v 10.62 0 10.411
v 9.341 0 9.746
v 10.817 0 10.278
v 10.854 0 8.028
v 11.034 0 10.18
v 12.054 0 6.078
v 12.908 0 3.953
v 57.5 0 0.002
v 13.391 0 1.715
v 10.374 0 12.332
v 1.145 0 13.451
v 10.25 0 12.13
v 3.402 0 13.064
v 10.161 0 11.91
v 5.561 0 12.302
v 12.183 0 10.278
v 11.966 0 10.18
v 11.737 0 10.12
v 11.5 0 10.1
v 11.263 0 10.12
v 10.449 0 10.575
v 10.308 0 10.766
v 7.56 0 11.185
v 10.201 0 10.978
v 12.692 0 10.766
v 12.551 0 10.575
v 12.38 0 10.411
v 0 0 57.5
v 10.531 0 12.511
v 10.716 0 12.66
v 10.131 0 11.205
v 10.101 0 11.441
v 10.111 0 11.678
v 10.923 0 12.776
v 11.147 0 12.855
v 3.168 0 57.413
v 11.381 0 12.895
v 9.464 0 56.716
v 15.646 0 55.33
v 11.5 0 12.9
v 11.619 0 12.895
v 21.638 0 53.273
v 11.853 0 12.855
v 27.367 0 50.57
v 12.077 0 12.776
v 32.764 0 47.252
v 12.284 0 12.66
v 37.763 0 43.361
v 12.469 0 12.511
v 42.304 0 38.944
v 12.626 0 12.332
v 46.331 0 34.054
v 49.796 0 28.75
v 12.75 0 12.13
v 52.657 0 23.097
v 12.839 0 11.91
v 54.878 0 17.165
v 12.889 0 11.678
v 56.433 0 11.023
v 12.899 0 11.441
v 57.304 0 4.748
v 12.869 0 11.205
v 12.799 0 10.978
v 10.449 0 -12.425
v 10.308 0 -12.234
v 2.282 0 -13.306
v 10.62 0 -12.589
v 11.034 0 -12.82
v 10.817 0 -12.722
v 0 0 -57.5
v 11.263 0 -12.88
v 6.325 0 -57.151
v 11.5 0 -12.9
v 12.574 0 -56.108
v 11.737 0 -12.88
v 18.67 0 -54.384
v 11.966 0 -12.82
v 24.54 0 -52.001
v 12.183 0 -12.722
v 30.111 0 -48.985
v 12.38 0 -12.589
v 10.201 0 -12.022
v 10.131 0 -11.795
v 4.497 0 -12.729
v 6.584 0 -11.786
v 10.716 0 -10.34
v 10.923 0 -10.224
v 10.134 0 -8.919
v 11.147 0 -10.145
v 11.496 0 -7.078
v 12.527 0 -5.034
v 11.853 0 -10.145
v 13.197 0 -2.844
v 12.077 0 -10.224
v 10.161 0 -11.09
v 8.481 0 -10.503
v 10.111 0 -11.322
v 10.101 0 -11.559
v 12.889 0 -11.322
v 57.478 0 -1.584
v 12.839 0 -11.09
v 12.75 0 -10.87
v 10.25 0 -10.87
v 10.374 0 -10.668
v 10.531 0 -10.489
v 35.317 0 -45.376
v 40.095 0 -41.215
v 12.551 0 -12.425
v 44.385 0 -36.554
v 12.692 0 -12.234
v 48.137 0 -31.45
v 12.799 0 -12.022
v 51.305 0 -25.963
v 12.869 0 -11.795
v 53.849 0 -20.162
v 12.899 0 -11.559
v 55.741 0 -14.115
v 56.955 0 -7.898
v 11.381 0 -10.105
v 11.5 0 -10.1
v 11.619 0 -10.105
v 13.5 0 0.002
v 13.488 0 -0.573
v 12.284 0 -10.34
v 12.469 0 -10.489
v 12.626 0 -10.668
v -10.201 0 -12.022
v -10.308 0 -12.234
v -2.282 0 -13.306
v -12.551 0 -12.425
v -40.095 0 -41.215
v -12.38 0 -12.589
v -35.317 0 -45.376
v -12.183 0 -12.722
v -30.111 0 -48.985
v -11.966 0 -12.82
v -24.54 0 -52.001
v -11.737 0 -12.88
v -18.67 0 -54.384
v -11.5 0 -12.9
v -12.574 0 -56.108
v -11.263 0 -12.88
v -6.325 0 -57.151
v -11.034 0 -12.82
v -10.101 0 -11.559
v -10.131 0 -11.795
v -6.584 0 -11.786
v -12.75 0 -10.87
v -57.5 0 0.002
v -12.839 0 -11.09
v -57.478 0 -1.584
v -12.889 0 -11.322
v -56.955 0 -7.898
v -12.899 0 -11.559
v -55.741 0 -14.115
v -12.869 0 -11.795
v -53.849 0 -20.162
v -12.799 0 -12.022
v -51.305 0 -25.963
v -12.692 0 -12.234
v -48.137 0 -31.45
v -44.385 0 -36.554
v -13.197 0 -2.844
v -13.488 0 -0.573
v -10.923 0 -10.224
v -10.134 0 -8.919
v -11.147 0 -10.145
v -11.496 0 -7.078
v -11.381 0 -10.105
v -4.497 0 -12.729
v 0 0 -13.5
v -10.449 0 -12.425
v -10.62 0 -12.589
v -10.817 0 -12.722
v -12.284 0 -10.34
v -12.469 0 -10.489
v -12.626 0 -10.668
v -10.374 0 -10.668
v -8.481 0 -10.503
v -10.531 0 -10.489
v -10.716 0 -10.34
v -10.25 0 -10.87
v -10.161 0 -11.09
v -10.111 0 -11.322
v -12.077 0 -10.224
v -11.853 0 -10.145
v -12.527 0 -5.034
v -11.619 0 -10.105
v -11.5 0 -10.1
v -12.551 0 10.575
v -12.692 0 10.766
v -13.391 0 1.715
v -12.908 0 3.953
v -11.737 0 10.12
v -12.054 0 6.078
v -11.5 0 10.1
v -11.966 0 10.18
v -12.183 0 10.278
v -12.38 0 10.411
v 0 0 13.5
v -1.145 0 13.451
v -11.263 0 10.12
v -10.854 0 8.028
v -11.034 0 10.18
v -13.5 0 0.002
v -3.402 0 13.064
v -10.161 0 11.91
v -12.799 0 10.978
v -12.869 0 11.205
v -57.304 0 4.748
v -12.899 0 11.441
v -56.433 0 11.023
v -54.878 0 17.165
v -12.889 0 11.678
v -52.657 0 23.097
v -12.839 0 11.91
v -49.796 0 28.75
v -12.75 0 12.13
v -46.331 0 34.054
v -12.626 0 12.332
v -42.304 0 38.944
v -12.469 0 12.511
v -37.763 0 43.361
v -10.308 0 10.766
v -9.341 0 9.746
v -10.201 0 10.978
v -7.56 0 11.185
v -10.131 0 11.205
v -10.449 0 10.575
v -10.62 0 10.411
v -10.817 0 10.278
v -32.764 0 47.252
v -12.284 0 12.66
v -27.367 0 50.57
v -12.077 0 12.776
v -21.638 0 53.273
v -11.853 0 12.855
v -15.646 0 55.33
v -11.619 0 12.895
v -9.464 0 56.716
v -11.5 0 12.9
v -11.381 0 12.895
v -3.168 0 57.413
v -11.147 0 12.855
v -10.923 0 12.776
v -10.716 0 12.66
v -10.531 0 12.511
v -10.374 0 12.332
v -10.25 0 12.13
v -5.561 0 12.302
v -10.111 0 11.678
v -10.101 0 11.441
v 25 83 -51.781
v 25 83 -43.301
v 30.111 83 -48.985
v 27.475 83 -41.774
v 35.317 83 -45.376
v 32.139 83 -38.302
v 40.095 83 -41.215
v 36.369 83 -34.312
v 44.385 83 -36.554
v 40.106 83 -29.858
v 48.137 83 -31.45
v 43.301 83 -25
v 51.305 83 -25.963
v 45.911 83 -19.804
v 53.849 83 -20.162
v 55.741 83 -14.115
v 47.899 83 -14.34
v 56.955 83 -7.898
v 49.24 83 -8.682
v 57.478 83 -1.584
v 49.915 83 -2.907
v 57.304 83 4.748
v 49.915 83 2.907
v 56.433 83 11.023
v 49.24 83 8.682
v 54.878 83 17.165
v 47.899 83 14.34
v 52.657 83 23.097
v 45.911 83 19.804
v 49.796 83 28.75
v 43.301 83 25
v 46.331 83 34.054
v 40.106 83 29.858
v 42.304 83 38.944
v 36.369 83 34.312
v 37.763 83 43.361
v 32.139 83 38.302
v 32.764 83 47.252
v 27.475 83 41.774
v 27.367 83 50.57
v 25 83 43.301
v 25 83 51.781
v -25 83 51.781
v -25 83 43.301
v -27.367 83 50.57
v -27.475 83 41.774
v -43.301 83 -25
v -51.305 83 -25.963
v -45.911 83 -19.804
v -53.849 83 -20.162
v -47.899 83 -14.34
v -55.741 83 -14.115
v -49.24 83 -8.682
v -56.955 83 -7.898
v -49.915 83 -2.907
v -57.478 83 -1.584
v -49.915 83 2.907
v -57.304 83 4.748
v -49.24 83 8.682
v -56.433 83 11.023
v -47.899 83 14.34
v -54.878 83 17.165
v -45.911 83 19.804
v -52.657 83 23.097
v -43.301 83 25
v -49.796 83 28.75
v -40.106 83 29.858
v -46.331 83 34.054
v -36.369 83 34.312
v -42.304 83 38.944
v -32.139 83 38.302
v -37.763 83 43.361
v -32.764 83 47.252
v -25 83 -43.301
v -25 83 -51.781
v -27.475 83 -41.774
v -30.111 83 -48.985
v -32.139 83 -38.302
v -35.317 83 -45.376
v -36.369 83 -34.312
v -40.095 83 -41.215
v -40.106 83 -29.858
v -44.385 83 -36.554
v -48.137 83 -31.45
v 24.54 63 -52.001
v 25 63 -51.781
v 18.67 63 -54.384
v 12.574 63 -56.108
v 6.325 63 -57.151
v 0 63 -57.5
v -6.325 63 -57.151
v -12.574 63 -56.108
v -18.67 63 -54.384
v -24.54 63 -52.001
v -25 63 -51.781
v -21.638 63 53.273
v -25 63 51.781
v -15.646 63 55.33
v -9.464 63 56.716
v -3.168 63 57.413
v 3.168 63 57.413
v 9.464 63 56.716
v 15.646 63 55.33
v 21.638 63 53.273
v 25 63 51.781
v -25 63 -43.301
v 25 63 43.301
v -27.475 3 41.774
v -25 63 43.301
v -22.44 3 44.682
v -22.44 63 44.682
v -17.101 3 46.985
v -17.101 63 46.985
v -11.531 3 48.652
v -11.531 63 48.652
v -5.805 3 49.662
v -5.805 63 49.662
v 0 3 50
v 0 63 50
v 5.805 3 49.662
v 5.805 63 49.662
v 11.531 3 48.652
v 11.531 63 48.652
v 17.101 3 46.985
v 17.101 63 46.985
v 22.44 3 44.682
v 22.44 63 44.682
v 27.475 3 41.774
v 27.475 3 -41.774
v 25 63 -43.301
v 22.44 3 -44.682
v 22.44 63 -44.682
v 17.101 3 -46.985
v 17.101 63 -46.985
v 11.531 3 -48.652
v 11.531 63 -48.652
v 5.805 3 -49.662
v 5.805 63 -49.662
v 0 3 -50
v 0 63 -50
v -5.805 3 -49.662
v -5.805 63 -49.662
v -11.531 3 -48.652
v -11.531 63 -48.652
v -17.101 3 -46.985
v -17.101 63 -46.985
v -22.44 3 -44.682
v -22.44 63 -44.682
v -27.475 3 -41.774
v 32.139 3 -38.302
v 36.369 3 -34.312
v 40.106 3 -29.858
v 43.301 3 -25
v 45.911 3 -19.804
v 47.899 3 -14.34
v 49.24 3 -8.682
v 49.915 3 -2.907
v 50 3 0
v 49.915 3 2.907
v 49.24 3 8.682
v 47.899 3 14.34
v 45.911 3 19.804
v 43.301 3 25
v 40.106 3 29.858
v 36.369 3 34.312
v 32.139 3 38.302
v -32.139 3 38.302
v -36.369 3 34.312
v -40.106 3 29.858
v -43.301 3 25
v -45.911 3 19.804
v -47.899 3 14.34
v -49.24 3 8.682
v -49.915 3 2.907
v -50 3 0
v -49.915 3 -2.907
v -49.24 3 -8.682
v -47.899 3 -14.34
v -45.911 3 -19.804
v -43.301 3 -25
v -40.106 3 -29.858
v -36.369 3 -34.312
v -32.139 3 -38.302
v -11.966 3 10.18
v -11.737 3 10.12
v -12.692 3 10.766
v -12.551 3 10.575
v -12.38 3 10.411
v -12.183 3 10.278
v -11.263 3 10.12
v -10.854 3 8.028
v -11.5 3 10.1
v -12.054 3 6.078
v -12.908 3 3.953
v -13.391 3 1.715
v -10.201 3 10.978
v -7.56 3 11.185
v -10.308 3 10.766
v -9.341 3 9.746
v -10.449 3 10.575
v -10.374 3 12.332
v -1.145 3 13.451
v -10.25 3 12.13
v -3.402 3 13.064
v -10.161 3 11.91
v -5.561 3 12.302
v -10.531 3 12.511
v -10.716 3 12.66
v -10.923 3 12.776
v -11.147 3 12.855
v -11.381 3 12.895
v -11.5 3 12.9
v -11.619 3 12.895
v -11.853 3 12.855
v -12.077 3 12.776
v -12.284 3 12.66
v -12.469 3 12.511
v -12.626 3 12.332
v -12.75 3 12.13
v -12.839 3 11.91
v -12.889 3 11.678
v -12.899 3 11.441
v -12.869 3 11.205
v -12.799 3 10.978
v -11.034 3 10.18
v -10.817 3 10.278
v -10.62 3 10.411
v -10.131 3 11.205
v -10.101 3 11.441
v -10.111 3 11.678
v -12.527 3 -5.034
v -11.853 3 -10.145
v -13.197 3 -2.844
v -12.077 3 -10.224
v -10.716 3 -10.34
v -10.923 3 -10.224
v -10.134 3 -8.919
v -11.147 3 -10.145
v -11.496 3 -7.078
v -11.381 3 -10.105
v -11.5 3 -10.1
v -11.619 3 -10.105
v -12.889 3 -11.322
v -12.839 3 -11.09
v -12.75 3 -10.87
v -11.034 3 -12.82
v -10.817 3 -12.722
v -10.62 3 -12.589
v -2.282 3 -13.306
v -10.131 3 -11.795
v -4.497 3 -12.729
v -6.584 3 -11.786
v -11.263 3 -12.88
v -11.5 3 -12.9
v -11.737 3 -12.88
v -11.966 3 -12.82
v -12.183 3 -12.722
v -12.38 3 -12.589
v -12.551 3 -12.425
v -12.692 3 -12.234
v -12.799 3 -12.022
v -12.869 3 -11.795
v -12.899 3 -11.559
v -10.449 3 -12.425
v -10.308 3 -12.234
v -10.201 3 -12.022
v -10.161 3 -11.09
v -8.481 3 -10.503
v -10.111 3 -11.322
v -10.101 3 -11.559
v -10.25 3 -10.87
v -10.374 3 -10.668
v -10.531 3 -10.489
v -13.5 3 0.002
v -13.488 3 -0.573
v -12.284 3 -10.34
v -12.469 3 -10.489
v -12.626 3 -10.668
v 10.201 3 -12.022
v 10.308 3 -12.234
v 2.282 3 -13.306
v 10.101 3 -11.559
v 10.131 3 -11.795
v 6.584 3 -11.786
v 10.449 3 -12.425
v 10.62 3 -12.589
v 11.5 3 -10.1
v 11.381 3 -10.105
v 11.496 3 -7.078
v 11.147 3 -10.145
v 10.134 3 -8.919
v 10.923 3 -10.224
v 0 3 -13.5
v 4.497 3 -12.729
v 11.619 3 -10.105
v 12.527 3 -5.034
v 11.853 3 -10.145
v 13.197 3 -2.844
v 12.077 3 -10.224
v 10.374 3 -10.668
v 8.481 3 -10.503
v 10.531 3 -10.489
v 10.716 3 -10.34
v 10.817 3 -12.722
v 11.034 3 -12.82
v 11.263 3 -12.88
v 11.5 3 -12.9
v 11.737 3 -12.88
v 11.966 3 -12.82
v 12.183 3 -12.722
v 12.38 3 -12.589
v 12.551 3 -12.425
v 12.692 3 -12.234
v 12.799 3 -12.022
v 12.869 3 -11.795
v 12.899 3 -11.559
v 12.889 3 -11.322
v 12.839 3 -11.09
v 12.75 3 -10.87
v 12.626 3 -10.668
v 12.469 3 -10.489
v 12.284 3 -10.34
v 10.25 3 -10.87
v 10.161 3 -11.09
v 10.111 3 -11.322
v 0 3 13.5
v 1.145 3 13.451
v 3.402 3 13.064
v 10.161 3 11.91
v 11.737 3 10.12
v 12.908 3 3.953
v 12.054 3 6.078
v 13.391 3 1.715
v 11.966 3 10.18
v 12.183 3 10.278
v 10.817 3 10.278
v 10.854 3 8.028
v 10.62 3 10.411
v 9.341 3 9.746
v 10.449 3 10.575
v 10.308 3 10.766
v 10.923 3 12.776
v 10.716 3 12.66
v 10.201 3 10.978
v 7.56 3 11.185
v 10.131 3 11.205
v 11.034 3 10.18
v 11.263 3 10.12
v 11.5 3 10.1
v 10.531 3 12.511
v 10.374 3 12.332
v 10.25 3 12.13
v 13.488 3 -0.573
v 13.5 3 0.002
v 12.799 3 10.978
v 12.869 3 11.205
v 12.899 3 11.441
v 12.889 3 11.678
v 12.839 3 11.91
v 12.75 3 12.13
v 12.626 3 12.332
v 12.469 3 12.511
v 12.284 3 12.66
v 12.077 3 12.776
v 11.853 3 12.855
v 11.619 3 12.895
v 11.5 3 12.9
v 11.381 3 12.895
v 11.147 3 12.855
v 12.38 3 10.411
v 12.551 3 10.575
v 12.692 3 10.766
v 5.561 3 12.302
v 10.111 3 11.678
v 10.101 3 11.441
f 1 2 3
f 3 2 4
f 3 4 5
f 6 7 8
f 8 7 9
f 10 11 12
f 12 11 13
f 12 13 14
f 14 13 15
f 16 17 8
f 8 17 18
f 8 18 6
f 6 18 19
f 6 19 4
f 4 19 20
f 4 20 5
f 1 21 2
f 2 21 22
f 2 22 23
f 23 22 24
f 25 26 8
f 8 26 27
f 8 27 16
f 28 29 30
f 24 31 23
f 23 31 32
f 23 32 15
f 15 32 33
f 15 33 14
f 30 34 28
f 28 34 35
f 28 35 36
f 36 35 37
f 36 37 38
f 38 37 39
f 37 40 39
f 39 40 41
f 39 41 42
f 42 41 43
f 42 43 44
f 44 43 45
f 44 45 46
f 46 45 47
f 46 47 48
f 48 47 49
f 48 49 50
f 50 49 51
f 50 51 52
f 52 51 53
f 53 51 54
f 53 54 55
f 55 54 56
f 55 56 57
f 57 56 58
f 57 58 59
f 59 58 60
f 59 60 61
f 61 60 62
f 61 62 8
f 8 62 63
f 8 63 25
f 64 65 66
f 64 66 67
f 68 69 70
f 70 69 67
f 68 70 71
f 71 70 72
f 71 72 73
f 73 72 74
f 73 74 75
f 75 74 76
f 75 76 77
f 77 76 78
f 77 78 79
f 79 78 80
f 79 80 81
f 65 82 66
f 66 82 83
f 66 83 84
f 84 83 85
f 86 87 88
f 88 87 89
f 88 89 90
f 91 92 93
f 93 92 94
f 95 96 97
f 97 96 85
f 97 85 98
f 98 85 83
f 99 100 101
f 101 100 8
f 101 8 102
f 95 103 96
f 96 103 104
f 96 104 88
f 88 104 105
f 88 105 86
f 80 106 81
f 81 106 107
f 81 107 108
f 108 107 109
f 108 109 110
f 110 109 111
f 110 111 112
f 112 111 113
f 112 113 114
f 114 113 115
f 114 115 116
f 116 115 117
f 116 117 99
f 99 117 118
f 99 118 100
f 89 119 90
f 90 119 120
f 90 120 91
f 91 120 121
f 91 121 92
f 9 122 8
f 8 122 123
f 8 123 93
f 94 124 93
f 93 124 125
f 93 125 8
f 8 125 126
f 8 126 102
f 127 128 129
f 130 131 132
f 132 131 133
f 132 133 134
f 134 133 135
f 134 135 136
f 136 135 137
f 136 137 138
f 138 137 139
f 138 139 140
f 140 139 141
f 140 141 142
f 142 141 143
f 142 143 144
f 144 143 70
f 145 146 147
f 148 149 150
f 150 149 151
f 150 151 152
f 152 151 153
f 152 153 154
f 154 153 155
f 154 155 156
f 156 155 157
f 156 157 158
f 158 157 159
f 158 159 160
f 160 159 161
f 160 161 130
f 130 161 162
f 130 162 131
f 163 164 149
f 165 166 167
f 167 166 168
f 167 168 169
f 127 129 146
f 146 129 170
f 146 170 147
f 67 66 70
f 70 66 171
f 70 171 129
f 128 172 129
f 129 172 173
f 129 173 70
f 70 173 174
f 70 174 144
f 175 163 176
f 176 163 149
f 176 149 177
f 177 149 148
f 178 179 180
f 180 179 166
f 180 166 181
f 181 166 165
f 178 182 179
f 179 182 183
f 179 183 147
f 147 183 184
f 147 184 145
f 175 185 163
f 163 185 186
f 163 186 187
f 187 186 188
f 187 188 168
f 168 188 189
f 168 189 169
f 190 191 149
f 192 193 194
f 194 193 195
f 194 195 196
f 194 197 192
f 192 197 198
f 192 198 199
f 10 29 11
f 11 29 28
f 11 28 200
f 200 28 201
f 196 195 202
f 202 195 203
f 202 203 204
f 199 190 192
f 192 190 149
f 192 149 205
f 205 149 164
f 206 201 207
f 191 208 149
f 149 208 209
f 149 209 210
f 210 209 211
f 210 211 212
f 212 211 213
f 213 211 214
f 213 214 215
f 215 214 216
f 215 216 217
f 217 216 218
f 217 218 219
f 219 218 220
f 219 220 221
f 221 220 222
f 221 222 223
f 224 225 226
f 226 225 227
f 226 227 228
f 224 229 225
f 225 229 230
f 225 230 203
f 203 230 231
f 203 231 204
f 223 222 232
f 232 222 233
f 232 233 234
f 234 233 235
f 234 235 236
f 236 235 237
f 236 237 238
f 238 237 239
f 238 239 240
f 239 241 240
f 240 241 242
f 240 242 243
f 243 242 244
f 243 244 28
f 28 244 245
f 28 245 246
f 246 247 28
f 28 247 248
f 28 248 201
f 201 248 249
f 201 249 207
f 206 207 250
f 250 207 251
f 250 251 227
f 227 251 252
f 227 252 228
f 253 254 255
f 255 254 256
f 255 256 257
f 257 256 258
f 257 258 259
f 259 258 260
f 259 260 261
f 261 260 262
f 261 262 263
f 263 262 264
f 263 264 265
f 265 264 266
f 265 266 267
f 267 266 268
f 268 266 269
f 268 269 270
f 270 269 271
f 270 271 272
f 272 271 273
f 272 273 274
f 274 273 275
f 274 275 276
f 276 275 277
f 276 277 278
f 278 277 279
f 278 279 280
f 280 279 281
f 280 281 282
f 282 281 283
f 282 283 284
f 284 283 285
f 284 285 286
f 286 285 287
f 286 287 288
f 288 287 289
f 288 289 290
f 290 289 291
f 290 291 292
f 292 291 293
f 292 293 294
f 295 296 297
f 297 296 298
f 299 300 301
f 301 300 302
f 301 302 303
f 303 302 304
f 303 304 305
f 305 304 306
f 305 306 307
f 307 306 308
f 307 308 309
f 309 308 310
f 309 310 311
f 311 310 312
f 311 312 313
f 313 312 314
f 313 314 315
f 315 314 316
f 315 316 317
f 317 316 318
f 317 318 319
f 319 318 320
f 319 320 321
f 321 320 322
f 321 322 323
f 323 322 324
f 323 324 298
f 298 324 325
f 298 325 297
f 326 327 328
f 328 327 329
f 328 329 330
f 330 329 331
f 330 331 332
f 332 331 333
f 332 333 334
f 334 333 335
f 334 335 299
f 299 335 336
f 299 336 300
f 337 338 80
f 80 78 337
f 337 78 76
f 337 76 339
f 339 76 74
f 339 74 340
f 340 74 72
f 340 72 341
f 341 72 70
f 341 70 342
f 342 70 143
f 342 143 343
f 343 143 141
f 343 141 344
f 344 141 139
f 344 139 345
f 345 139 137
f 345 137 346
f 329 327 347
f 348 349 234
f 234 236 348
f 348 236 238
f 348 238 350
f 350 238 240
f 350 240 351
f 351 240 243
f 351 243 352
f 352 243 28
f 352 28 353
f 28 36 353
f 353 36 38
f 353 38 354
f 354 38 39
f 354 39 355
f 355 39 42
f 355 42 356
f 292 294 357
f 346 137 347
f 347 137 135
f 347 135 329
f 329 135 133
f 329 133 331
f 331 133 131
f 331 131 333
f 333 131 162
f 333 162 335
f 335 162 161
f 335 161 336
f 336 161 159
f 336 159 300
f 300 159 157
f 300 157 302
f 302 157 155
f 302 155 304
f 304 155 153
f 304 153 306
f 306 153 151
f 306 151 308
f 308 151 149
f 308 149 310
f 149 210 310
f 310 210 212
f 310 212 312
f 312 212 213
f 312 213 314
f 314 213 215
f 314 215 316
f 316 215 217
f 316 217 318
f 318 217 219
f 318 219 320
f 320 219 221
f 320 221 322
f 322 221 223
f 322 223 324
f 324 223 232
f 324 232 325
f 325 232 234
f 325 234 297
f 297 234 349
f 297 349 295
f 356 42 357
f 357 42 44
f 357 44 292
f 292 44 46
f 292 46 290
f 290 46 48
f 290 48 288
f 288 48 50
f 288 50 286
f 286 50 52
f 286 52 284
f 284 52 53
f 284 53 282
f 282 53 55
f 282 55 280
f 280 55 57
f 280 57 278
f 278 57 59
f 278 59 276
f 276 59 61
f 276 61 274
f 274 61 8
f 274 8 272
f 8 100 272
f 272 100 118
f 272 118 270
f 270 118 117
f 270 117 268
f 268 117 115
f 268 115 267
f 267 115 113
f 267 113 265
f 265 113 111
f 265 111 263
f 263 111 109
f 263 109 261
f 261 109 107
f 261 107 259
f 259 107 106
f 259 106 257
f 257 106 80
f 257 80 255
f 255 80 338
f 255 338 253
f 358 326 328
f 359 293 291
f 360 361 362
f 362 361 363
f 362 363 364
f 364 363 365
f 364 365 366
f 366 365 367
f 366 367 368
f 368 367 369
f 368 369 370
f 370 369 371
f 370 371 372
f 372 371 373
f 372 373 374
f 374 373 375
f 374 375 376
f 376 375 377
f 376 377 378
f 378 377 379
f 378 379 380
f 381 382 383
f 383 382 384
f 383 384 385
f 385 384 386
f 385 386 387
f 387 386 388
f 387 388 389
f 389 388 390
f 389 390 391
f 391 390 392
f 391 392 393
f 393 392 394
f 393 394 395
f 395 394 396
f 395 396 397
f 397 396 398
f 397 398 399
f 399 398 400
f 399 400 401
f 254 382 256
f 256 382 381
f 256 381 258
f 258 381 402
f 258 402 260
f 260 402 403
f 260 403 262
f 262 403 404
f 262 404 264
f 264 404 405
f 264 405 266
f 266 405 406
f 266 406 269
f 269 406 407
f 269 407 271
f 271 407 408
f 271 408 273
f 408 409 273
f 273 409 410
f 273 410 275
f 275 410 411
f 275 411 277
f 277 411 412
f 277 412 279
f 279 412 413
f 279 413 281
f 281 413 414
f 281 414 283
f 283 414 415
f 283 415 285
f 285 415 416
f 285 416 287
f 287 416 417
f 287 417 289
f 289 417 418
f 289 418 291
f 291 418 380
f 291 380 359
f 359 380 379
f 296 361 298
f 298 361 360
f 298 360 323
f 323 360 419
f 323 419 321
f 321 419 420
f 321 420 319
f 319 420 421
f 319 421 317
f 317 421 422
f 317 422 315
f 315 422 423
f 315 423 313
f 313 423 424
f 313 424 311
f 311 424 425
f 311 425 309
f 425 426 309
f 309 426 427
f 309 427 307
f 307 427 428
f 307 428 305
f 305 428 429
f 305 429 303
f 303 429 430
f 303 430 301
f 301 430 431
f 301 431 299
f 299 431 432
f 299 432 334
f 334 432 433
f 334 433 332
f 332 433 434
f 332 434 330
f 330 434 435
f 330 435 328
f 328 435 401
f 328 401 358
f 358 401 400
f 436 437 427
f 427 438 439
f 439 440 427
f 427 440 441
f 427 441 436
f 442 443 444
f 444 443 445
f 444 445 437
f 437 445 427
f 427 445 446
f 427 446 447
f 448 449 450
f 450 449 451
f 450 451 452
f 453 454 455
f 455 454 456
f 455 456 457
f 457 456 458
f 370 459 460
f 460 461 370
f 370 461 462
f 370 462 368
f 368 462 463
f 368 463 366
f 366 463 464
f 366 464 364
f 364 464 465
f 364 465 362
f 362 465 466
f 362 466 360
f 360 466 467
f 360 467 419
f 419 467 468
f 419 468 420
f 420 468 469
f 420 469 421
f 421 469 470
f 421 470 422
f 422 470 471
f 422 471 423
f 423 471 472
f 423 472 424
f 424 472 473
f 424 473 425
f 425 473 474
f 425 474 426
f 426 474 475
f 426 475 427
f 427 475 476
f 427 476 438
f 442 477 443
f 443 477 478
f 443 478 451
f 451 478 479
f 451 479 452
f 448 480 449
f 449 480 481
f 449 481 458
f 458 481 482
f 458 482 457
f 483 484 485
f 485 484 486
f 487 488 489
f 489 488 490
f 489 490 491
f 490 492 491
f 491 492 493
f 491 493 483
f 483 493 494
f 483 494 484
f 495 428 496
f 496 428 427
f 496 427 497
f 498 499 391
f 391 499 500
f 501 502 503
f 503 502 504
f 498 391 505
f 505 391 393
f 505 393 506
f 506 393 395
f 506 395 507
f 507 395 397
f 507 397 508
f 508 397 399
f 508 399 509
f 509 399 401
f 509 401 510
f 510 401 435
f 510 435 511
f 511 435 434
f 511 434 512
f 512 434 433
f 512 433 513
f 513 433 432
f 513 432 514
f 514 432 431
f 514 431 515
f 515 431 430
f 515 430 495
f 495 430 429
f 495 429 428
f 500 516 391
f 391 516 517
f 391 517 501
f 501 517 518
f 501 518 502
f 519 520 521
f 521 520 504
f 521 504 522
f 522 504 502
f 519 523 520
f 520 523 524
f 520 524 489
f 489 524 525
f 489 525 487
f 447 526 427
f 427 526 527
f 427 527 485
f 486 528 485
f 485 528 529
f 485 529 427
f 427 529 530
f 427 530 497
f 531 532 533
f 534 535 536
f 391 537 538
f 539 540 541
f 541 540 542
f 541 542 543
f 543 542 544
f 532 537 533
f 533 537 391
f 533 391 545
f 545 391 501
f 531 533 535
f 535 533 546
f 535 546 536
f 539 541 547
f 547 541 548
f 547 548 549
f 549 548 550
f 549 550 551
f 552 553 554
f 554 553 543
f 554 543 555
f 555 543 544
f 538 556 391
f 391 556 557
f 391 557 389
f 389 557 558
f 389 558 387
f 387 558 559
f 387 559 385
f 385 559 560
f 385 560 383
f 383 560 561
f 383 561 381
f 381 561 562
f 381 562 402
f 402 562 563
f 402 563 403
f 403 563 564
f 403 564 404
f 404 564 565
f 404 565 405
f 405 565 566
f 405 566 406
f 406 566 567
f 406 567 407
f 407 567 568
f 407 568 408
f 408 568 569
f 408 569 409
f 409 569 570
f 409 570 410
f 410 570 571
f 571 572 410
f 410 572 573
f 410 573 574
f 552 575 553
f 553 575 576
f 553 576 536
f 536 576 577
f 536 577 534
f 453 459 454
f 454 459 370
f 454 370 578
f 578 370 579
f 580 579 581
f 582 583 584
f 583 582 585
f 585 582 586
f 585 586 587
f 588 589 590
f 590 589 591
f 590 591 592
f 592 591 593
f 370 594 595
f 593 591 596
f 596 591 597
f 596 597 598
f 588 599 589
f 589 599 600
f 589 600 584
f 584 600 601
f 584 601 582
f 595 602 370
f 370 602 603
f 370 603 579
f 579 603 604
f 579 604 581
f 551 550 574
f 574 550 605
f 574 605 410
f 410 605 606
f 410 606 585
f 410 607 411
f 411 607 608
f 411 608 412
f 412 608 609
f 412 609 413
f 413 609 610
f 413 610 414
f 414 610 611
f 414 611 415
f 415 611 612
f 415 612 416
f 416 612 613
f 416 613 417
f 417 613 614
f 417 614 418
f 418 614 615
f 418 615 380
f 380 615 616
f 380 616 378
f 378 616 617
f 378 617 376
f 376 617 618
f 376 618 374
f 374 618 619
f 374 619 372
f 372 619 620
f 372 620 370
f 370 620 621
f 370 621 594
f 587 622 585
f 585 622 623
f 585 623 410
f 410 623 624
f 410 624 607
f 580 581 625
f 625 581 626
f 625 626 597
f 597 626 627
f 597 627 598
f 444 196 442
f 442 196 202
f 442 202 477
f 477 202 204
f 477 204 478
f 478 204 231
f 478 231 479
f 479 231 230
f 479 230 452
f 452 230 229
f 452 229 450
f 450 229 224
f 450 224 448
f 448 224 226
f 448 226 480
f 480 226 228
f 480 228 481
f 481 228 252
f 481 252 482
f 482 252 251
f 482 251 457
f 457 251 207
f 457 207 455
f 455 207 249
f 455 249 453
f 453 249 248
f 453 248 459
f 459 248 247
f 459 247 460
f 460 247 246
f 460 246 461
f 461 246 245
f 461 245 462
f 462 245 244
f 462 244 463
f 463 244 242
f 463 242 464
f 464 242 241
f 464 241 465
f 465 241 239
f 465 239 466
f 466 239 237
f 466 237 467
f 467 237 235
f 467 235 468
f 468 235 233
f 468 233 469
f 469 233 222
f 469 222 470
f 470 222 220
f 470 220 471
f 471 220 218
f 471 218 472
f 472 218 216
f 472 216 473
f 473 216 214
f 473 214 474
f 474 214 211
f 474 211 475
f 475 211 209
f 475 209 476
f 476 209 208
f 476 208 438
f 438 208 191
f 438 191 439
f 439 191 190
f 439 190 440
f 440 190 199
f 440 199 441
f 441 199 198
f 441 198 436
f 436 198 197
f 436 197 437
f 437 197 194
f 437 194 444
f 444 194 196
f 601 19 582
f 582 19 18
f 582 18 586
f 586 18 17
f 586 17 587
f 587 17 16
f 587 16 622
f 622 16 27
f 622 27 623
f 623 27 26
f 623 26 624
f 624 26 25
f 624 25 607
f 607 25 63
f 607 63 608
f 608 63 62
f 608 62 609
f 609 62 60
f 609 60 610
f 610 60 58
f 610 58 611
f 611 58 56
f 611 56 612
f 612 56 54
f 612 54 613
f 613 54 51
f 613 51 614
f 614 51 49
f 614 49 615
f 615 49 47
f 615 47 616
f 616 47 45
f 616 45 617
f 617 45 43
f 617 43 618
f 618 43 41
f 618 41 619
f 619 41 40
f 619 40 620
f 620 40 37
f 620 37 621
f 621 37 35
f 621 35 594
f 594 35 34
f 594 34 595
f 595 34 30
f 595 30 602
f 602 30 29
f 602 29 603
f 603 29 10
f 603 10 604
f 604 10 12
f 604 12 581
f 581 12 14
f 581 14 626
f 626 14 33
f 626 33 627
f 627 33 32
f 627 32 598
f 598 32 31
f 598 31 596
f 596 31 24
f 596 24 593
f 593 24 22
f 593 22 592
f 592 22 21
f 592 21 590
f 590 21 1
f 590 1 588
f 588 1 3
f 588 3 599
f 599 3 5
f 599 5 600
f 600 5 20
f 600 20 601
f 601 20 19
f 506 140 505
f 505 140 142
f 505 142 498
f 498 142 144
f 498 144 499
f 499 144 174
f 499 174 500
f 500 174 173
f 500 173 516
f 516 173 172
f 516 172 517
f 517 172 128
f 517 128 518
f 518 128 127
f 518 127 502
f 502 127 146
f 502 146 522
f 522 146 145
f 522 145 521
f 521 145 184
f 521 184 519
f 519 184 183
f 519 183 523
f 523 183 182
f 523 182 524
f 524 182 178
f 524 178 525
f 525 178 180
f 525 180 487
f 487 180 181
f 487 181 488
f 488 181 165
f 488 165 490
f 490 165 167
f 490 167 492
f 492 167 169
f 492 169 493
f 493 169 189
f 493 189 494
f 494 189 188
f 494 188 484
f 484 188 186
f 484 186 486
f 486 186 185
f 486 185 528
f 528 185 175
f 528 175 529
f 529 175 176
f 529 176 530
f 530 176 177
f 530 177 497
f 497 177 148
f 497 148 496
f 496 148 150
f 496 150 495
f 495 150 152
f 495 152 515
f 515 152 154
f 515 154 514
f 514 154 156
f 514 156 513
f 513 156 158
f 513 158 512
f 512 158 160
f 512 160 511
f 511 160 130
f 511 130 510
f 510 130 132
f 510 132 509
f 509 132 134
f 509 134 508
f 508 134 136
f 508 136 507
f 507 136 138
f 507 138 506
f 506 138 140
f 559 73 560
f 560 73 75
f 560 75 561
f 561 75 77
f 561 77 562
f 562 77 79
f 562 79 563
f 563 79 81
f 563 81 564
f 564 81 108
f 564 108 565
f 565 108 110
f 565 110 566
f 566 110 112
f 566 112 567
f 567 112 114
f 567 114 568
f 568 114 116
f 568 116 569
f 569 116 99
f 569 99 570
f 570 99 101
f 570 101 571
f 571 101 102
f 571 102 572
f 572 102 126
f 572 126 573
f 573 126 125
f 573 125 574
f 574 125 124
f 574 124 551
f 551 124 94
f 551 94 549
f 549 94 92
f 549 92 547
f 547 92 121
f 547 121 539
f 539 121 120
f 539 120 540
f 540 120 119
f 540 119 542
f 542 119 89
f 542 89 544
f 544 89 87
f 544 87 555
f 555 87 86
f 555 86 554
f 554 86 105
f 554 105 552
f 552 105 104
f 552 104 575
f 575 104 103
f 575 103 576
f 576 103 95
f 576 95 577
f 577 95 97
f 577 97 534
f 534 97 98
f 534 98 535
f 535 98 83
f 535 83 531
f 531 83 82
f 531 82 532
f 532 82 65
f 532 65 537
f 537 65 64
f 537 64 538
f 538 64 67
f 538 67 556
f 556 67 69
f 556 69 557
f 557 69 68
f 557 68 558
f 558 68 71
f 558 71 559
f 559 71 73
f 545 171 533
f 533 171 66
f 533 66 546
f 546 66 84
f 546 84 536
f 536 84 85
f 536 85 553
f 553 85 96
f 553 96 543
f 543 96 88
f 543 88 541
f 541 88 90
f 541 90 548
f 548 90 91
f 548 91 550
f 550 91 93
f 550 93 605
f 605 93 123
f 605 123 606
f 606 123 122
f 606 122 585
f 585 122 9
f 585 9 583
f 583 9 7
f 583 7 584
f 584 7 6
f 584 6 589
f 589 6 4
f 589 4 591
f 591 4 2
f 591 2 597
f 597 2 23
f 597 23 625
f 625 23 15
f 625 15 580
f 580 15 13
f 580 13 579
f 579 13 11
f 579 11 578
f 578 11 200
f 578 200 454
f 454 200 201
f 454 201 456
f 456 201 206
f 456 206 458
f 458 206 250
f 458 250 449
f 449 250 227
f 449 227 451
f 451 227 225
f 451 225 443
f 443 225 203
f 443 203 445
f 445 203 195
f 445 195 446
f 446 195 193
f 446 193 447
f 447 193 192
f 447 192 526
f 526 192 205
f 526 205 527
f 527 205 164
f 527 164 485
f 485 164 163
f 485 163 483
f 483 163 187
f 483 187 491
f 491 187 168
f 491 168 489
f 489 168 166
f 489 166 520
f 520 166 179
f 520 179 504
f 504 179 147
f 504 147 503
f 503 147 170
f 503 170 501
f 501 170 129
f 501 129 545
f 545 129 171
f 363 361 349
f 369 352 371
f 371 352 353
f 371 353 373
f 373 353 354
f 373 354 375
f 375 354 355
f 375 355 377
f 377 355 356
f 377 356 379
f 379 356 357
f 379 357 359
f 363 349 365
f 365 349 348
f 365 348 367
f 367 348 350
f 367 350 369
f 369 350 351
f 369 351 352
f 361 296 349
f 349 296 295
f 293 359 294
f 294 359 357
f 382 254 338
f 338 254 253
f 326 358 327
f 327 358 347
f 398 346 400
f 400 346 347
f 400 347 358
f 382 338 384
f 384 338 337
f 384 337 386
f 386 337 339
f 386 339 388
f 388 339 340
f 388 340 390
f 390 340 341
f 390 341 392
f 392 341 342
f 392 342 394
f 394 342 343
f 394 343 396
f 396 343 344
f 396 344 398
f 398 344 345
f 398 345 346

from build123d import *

# Parameters (mm, degrees)
SKETCH_1_R               = 75
SKETCH_1_R_2             = 1.4
SKETCH_1_R_3             = 13.5
EXTRUDE_1_DEPTH          = 3
SKETCH_2_R               = 57.5
SKETCH_2_R_2             = 50
EXTRUDE_3_DEPTH          = 80
CUT_EXTRUDE_1_DEPTH      = 80
CUT_EXTRUDE_1_DEPTH_BACK = 80
SKETCH_4_W               = 50
SKETCH_4_H               = 40
CUT_EXTRUDE_START        = -80
SKETCH_5_R               = 75
SKETCH_5_R_2             = 57.5
CUT_EXTRUDE_2_DEPTH      = 80


with BuildPart() as part:
    # 草图1 → 凸台-拉伸1 (new body)
    with BuildSketch(Plane(origin=(0, 0, 0), x_dir=(1, 0, 0), z_dir=(0, 1, 0))):
        Circle(SKETCH_1_R)
        with Locations((11.5, 11.5)):
            Circle(SKETCH_1_R_2, mode=Mode.SUBTRACT)
        with Locations((-11.5, 11.5)):
            Circle(SKETCH_1_R_2, mode=Mode.SUBTRACT)
        with Locations((-11.5, -11.5)):
            Circle(SKETCH_1_R_2, mode=Mode.SUBTRACT)
        with Locations((11.5, -11.5)):
            Circle(SKETCH_1_R_2, mode=Mode.SUBTRACT)
        Circle(SKETCH_1_R_3, mode=Mode.SUBTRACT)
    extrude(amount=EXTRUDE_1_DEPTH)

    # 草图2 → 凸台-拉伸3 (add)
    with BuildSketch(Plane(origin=(0, 3, 0), x_dir=(1, 0, 0), z_dir=(0, 1, 0))):
        Circle(SKETCH_2_R)
        Circle(SKETCH_2_R_2, mode=Mode.SUBTRACT)
    extrude(amount=EXTRUDE_3_DEPTH)

    # 草图4 → 切除-拉伸1 (cut, two sides: drawn at the far end of the back side and taken through both)
    with BuildSketch(Plane.XY.offset(-CUT_EXTRUDE_1_DEPTH_BACK)):
        with Locations((0, 83)):
            Rectangle(SKETCH_4_W, SKETCH_4_H)
    extrude(amount=CUT_EXTRUDE_1_DEPTH + CUT_EXTRUDE_1_DEPTH_BACK, mode=Mode.SUBTRACT)

    # 草图5 → 切除-拉伸2 (cut)
    with BuildSketch(Plane(origin=(0, 3, 0), x_dir=(1, 0, 0), z_dir=(0, 1, 0)).offset(CUT_EXTRUDE_START)):
        Circle(SKETCH_5_R)
        Circle(SKETCH_5_R_2, mode=Mode.SUBTRACT)
    extrude(amount=CUT_EXTRUDE_2_DEPTH, mode=Mode.SUBTRACT)


solid = part.part
